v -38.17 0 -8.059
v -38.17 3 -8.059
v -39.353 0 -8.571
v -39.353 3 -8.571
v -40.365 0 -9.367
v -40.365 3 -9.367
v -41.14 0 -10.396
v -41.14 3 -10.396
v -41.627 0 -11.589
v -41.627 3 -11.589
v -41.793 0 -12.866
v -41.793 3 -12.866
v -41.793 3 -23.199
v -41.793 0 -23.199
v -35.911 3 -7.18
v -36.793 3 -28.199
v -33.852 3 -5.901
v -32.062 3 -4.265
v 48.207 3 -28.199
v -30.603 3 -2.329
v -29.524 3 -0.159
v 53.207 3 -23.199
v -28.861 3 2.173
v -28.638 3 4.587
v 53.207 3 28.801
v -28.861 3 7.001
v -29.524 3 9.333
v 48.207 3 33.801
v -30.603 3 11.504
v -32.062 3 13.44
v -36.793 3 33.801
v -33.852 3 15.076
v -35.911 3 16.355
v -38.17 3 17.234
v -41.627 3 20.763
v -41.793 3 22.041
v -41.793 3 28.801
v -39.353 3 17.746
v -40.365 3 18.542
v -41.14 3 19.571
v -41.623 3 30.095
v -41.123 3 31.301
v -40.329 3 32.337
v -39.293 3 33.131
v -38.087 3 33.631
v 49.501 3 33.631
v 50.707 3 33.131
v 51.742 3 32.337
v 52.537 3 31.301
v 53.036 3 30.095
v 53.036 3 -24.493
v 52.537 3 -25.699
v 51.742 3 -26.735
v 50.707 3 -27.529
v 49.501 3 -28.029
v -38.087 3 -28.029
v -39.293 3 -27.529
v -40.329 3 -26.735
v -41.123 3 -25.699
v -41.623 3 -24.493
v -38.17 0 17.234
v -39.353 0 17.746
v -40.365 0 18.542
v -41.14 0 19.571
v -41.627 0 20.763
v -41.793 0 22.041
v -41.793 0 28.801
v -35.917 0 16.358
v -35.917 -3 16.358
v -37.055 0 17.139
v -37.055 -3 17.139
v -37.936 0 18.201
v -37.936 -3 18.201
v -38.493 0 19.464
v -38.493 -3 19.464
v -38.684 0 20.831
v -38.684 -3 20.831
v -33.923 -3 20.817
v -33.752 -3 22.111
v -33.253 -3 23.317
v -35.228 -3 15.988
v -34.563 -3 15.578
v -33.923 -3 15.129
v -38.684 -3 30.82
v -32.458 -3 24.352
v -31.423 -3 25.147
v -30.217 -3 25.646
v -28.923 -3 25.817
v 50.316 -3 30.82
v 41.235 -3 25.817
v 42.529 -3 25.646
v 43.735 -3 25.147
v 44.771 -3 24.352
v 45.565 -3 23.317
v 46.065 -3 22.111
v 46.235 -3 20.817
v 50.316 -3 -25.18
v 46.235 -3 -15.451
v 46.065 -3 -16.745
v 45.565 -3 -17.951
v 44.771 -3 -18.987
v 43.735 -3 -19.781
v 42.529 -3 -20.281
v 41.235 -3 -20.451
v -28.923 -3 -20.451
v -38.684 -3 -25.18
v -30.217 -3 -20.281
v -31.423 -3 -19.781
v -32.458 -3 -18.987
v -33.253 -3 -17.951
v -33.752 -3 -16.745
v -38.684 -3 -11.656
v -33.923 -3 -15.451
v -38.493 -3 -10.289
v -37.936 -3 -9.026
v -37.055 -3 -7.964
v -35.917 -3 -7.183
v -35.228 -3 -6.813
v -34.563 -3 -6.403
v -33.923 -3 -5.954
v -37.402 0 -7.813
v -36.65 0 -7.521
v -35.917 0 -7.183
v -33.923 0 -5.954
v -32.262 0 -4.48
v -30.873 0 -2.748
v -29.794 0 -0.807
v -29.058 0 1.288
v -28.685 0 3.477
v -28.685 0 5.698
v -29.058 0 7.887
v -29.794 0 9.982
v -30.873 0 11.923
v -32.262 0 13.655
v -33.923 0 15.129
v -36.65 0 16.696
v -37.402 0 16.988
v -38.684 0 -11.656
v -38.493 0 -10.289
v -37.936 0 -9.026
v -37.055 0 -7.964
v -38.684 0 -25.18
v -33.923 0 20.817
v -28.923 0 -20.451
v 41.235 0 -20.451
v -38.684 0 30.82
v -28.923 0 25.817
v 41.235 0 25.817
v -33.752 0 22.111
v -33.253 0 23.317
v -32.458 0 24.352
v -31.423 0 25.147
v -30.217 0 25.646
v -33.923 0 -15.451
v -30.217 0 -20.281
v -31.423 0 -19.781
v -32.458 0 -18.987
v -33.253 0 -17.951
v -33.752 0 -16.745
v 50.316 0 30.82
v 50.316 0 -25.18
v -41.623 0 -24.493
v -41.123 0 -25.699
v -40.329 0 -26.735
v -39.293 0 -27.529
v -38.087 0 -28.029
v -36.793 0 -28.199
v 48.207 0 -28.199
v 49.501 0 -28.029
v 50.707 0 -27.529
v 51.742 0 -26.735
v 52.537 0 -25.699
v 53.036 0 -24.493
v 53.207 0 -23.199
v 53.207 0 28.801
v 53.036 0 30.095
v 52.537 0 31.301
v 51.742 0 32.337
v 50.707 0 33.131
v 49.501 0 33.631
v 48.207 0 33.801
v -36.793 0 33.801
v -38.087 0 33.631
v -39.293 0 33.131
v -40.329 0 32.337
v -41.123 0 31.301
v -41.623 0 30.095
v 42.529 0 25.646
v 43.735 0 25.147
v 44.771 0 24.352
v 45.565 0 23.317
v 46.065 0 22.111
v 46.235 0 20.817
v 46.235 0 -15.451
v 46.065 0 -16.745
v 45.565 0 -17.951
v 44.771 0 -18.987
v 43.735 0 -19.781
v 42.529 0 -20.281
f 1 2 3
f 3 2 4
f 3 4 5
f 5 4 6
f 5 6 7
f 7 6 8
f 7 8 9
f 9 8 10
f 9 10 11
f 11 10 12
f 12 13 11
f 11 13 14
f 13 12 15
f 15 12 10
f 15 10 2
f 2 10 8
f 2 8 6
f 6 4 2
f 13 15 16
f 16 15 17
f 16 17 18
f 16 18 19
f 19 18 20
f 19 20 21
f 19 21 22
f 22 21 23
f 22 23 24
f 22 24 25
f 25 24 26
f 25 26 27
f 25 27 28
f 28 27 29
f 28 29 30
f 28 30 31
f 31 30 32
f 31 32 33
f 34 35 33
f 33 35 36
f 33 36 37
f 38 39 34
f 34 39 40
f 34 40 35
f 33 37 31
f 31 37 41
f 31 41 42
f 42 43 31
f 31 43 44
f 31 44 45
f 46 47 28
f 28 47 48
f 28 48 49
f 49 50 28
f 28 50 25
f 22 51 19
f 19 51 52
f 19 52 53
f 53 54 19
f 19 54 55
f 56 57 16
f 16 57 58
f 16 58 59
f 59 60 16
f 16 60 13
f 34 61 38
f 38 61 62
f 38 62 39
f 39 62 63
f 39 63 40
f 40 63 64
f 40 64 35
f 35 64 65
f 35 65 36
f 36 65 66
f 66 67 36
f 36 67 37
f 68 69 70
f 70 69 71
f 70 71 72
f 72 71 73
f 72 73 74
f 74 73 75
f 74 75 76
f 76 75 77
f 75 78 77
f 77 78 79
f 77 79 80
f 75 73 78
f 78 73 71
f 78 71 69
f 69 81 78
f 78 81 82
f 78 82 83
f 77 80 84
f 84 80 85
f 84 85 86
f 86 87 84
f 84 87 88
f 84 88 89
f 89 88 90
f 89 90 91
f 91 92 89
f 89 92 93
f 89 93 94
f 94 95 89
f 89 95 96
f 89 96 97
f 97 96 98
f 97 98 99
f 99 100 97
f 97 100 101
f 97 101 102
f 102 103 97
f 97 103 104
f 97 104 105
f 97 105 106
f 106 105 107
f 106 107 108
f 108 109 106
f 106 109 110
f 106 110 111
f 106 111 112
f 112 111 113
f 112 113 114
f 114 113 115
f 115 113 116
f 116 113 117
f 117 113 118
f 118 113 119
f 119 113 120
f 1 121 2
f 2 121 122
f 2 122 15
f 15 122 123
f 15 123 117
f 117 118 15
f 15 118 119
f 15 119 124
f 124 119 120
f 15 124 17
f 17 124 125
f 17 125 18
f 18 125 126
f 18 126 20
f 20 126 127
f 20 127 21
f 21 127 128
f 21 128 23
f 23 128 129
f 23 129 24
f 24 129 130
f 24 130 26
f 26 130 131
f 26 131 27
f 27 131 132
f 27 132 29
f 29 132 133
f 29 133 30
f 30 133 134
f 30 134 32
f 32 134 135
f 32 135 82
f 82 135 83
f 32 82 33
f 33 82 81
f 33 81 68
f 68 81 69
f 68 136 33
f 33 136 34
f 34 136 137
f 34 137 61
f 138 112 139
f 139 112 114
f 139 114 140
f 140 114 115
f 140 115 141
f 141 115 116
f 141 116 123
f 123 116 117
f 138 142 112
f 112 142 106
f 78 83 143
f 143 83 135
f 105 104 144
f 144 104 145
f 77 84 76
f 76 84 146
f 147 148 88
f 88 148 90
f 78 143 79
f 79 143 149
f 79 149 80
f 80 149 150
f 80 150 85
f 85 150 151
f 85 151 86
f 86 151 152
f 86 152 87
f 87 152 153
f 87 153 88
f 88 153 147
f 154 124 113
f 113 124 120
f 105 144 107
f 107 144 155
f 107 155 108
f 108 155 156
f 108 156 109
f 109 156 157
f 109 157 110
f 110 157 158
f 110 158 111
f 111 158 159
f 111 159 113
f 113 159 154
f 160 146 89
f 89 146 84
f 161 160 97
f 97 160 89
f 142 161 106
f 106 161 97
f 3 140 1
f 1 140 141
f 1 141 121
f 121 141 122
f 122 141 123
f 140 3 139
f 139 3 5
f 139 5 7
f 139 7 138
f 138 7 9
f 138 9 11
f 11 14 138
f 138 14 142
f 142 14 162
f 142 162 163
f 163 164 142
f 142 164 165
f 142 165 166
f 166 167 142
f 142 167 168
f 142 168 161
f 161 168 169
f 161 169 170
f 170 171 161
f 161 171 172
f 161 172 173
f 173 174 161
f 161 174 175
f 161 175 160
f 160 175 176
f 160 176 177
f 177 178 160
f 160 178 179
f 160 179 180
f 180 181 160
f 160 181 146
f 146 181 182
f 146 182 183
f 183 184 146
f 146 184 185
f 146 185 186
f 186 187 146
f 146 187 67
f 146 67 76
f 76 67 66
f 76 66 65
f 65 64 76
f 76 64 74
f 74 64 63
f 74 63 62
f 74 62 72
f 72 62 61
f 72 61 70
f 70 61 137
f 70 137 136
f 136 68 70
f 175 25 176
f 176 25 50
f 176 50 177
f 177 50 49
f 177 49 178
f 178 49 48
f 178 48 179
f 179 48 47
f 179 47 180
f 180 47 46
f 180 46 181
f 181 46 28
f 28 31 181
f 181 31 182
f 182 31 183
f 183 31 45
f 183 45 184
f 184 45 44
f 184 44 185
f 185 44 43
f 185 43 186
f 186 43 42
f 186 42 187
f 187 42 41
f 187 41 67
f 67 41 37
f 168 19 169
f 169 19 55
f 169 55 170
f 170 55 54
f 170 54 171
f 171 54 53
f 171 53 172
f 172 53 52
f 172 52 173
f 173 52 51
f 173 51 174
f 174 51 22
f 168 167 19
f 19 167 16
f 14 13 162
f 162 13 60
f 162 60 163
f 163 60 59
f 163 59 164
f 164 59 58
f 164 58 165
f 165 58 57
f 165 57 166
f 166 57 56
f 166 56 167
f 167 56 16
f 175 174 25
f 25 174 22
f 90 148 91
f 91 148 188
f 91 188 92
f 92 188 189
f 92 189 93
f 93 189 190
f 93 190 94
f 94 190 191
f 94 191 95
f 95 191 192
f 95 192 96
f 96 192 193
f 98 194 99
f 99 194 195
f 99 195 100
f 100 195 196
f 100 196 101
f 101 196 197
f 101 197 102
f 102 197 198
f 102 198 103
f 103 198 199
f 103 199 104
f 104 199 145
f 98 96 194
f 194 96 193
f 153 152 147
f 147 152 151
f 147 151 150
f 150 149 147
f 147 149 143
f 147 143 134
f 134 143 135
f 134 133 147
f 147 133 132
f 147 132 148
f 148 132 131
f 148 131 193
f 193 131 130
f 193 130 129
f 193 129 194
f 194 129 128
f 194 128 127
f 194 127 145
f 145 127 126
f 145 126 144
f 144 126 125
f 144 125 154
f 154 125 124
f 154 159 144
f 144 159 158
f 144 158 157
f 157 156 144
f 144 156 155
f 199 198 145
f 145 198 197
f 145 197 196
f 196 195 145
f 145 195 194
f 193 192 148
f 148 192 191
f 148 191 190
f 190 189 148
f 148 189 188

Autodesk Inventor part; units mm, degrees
ref_plane "YZ Plane" through (0, 0, 0) normal (1, 0, 0) x (0, 1, 0)
ref_plane "XZ Plane" through (0, 0, 0) normal (0, 1, 0) x (-1, 0, 0)
ref_plane "XY Plane" through (0, 0, 0) normal (0, 0, 1) x (1, 0, 0)
sketch "Skizze1" plane through (0, 0, 0) normal (0, 1, 0) x (-1, 0, 0)
  line L0 (-53.2068, 33.801) -> (41.7932, 33.801)
  line L1 (41.7932, 33.801) -> (41.7932, -28.199)
  line L2 (41.7932, -28.199) -> (-53.2068, -28.199)
  line L3 (-53.2068, -28.199) -> (-53.2068, 33.801)
  line L4 (-50.2068, 30.801) -> (38.7932, 30.801)
  line L5 (38.7932, 30.801) -> (38.7932, -25.199)
  line L6 (38.7932, -25.199) -> (-50.2068, -25.199)
  line L7 (-50.2068, -25.199) -> (-50.2068, 30.801)
  point P0 (0, 0)
  point P1 (-48.7827, 30.712)
  dimension "d0" = 95
  dimension "d1" = 62
  dimension "d2" = 89
  dimension "d3" = 56
  dimension "d4" = 3
  dimension "d5" = 3
extrude "Extrusion1" add sketch "Skizze1" along normal blind 3 contours L0 L1 L2 L3 | L4 L5 L6 L7
fillet "Rundung1" radius 5 4 edges at (-41.7932, 1.5, -28.199) (53.2068, 1.5, -28.199) (-41.7932, 1.5, 33.801) (53.2068, 1.5, 33.801)
sketch "Skizze2" plane through (0, 0, 0) normal (0, -1, 0) x (1, 0, 0)
  line L0 (-41.6836, 33.8201) -> (53.3164, 33.8201)
  line L1 (53.3164, 33.8201) -> (53.3164, -28.1799)
  line L2 (53.3164, -28.1799) -> (-41.6836, -28.1799)
  line L3 (-41.6836, -28.1799) -> (-41.6836, 33.8201)
  line L4 (-38.6836, 30.8201) -> (50.3164, 30.8201)
  line L5 (50.3164, 30.8201) -> (50.3164, -25.1799)
  line L6 (50.3164, -25.1799) -> (-38.6836, -25.1799)
  line L7 (-38.6836, -25.1799) -> (-38.6836, 30.8201)
  line L8 (46.2352, 25.8167) -> (-33.9228, 25.8167)
  line L9 (-33.9228, 25.8167) -> (-33.9228, -20.451)
  line L10 (-33.9228, -20.451) -> (46.2352, -20.451)
  line L11 (46.2352, -20.451) -> (46.2352, 25.8167)
  point P0 (0, 0)
  point P1 (-89.6071, 35.7543)
  dimension "d9" = 95
  dimension "d10" = 62
  dimension "d11" = 89
  dimension "d12" = 56
  dimension "d13" = 3
  dimension "d14" = 3
extrude "Extrusion2" add sketch "Skizze2" along normal blind 3 contours L4 L5 L6 L7
sketch "Skizze3" plane through (0, 3, 0) normal (0, 1, 0) x (1, 0, 0)
  line L0 (-41.7932, 23.199) -> (-41.7932, -28.801) projected
  circle A0 centre (-41.7932, -4.5874) radius 13.1555
  point P0 (0, 0)
  point P1 (-41.7932, 8.5681)
  point P2 (-41.7932, -17.7429)
extrude "Extrusion3" cut sketch "Skizze3" against normal blind 6 contours A0 L0 picked at (-38.9148, -0.5266)
fillet "Rundung2" radius 5 4 edges at (-41.7932, 1.5, 17.7429) (-41.7932, 1.5, -8.5681) (-38.6836, -1.5, -8.1953) (-38.6836, -1.5, 17.3701)
fillet "Rundung3" radius 5 4 edges at (46.2352, -1.5, 25.8167) (46.2352, -1.5, -20.451) (-33.9228, -1.5, -20.451) (-33.9228, -1.5, 25.8167)
properties part number "top"
